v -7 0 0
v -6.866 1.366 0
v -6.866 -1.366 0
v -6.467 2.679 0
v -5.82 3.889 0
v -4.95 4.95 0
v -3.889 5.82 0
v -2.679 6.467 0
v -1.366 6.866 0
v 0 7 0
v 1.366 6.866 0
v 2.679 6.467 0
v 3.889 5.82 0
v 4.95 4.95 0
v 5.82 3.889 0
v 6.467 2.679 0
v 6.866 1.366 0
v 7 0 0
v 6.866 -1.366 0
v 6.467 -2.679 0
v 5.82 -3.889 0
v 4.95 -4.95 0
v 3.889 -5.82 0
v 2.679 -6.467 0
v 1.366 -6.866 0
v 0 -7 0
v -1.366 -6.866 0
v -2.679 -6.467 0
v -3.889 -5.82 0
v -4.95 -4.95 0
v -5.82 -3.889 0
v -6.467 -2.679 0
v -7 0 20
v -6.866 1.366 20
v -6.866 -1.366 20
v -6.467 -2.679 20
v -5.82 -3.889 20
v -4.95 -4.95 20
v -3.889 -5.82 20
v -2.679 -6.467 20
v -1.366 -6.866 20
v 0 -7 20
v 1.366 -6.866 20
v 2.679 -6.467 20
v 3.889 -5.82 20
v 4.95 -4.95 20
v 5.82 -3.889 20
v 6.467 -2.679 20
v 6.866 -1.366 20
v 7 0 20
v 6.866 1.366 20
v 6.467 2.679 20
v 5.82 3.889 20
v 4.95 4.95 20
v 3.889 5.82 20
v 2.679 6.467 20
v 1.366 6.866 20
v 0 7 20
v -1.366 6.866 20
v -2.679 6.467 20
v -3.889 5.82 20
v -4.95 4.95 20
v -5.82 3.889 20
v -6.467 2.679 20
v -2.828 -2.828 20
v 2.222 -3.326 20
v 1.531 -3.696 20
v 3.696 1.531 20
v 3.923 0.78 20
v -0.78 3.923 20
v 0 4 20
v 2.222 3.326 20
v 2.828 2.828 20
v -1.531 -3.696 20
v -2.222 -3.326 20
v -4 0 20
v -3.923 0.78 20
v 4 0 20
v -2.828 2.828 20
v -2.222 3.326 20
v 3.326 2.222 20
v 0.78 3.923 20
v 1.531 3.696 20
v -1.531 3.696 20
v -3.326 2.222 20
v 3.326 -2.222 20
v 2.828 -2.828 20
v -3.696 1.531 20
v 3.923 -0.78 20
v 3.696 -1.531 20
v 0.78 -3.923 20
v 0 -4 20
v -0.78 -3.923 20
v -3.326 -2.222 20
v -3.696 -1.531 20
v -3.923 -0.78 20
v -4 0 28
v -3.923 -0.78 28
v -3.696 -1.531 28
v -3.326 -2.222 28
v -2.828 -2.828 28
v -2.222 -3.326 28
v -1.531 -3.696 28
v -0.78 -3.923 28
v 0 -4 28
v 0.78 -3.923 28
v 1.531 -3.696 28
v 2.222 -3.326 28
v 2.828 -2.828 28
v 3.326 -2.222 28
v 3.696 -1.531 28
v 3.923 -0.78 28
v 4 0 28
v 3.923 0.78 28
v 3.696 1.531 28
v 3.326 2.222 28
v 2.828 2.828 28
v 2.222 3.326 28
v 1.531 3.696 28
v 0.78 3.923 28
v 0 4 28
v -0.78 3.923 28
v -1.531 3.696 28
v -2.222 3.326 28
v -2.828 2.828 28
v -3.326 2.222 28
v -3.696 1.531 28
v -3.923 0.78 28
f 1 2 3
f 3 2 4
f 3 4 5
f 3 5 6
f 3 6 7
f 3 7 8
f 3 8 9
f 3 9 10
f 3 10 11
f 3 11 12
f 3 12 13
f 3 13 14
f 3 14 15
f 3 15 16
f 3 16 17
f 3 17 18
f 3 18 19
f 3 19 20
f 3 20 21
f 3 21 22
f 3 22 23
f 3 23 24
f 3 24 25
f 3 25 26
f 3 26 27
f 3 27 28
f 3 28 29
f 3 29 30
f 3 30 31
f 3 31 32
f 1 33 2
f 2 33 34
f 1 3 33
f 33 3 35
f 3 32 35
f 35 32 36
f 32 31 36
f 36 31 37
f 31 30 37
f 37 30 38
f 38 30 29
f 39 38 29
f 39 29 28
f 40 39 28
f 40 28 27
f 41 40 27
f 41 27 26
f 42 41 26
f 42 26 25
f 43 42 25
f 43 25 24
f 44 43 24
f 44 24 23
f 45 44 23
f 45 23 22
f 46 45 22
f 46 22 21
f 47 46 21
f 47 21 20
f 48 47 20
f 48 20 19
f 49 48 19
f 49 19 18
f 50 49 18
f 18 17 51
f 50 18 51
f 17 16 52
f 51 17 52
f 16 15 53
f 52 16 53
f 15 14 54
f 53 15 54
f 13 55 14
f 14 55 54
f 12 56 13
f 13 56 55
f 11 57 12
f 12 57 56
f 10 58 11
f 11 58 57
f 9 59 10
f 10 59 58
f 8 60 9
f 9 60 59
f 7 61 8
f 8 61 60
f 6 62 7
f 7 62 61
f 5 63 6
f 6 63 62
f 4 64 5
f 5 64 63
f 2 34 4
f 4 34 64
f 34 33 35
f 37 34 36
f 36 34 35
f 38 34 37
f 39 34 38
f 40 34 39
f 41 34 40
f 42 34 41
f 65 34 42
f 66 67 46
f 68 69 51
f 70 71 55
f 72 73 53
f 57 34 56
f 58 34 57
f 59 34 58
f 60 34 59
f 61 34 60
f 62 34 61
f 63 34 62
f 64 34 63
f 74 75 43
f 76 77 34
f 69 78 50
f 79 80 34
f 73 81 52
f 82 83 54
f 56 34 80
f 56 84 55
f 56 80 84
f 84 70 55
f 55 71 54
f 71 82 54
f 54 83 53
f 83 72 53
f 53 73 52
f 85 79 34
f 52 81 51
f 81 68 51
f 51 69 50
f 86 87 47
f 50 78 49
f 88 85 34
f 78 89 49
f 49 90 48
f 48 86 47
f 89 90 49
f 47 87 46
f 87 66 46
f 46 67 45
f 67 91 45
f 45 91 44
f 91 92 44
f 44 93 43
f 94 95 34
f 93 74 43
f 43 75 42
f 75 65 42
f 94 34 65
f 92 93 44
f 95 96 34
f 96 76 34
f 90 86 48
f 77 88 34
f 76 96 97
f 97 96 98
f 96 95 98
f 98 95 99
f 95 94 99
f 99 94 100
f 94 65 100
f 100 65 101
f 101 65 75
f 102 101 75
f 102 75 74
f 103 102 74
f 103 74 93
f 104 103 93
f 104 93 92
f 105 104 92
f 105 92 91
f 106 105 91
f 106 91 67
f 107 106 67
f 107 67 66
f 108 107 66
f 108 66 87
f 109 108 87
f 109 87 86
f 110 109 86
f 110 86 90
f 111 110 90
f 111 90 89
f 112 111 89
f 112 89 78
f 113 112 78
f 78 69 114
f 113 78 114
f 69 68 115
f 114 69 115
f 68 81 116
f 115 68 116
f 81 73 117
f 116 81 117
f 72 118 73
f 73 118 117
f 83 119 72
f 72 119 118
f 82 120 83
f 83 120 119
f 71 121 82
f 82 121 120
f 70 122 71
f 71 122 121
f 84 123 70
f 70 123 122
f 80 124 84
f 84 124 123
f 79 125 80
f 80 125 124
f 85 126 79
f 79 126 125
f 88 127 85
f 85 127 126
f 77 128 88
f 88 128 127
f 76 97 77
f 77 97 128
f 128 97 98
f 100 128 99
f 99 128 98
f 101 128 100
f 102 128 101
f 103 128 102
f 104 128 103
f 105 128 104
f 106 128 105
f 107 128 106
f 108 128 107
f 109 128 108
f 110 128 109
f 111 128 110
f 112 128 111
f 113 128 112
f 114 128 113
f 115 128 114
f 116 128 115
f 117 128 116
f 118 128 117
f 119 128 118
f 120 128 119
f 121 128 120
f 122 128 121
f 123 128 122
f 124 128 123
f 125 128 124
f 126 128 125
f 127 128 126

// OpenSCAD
cylinder( r=7, h=20, $fn=32 );

translate( [0,0,20] )
cylinder( r=4, h=8, $fn=32 );
